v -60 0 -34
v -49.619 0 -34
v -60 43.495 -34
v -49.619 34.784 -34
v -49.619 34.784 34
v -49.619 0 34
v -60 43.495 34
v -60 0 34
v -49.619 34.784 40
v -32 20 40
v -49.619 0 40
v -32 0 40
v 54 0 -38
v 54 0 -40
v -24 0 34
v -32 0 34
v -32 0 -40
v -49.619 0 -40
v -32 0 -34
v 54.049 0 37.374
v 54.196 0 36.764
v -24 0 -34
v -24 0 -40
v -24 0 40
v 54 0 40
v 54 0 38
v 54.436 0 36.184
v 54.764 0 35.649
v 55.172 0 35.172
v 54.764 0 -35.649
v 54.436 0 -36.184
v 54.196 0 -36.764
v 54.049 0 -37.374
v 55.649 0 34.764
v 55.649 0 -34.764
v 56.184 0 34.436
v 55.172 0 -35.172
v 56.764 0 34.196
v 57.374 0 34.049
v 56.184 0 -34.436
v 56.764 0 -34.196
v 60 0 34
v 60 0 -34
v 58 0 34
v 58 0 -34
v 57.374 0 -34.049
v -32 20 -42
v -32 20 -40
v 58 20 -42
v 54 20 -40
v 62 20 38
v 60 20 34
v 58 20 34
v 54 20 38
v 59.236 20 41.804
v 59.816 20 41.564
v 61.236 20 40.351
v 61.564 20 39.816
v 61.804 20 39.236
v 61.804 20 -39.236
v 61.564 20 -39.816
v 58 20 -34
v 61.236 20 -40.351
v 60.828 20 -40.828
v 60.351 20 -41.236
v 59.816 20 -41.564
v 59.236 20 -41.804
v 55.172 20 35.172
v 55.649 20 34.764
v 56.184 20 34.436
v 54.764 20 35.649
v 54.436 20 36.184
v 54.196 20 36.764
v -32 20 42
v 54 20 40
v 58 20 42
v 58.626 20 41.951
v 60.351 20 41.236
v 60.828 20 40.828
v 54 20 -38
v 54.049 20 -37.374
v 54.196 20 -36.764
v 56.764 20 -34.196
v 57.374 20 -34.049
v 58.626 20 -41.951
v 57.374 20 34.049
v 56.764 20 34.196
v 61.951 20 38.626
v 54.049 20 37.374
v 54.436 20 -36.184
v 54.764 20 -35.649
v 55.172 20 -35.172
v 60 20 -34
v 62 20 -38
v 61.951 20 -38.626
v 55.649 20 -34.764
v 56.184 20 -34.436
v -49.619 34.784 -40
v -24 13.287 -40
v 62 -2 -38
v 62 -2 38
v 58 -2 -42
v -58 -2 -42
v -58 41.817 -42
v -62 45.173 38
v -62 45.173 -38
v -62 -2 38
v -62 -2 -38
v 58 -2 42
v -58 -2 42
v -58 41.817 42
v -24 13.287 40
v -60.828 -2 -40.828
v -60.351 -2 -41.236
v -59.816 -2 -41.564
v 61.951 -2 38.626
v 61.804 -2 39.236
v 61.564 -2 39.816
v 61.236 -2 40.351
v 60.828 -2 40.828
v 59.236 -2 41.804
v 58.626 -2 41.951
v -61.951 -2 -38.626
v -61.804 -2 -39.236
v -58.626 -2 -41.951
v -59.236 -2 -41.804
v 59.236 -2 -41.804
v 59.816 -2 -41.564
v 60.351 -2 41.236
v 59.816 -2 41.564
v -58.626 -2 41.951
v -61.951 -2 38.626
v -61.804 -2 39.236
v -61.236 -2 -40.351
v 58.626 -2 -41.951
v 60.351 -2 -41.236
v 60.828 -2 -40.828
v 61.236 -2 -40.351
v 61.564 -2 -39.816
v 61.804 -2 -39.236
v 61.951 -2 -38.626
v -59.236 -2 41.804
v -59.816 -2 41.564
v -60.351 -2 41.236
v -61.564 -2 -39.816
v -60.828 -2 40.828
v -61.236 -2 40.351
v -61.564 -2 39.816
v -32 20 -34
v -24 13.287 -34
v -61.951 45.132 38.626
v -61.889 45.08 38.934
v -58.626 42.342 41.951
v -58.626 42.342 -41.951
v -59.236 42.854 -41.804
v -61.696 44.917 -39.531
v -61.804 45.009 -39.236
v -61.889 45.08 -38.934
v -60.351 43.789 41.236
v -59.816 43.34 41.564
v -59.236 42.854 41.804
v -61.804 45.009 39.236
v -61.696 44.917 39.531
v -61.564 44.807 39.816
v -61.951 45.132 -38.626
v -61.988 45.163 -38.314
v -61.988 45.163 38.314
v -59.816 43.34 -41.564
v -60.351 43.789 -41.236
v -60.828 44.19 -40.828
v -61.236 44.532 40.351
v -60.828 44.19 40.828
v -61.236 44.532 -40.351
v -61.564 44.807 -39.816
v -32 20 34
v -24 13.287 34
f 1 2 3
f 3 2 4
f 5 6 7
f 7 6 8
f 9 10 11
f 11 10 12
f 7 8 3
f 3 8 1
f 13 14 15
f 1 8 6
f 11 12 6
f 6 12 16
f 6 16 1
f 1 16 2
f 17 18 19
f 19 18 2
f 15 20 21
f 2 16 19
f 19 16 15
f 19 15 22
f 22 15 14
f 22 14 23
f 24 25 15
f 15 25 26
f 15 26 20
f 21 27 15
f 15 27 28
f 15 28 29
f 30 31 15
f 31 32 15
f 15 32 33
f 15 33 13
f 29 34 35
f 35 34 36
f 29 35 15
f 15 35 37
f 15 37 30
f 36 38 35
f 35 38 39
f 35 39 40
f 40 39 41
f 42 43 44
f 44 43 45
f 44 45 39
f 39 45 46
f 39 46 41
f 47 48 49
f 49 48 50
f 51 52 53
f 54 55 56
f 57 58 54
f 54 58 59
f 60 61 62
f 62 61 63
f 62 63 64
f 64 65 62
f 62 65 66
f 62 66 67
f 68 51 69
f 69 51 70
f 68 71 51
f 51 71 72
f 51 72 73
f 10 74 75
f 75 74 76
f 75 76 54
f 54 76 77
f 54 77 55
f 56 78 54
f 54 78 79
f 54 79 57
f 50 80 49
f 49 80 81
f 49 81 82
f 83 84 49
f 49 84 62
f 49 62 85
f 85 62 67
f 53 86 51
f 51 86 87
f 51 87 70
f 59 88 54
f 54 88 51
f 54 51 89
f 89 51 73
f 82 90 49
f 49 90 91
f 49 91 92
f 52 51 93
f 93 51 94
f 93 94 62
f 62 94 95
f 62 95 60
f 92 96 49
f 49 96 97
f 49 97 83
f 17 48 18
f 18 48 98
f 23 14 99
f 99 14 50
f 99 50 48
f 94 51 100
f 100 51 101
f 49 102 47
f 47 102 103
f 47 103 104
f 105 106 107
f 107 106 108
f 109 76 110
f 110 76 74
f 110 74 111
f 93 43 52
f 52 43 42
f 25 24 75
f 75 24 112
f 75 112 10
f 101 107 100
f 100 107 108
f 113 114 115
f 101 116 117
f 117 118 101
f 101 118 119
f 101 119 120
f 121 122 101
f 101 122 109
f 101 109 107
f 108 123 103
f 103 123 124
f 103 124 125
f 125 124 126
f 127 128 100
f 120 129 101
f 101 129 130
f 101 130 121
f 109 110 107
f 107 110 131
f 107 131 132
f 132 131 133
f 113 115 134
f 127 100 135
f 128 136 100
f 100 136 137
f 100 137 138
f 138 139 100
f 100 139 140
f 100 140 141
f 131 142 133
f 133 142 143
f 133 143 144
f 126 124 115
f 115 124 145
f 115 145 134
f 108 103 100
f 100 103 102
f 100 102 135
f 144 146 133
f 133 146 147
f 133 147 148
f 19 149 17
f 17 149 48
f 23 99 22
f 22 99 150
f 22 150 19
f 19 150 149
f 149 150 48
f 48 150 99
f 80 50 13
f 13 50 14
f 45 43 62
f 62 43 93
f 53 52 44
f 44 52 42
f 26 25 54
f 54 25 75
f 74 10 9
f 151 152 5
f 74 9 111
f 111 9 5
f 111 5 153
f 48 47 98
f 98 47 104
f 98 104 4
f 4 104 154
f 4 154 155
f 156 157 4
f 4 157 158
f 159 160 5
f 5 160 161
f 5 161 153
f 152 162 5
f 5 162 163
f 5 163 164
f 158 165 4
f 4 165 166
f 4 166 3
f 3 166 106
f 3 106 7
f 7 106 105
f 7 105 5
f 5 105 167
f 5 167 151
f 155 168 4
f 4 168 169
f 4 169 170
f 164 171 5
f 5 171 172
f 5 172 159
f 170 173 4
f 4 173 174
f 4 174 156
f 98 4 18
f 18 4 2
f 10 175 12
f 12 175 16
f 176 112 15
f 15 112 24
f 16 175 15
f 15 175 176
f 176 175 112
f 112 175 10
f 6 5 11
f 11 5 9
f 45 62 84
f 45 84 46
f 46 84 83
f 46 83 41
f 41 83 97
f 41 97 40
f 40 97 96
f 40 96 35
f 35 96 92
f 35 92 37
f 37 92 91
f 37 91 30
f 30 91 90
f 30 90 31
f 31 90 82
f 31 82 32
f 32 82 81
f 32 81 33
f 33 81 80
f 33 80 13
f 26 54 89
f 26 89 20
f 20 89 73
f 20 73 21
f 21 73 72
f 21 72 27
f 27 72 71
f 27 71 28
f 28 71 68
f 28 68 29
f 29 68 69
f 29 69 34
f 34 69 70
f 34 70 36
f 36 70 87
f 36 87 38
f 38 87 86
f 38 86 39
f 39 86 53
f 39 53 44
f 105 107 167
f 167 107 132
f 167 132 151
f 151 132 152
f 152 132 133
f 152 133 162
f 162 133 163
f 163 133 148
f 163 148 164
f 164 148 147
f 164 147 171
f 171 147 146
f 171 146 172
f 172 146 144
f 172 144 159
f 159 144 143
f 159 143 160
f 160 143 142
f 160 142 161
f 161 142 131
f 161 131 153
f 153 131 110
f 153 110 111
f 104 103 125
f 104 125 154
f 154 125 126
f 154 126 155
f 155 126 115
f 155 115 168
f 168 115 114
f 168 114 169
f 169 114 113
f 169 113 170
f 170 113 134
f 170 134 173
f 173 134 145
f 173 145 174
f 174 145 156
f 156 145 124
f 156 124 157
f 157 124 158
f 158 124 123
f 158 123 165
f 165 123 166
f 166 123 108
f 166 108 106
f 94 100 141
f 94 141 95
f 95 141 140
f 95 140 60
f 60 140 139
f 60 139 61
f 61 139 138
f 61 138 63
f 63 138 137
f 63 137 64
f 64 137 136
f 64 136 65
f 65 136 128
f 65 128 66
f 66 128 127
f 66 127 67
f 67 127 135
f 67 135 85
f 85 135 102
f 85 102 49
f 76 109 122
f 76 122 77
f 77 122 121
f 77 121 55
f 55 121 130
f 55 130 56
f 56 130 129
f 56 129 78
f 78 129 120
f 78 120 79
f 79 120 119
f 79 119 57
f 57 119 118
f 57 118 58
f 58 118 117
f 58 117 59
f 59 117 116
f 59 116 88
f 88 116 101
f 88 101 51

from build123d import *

# Parameters (mm, degrees)
SKETCH1_W            = 124
SKETCH1_H            = 84
SKETCH1_W_2          = 120
SKETCH1_H_2          = 80
EXTRUDE_THIN1_DEPTH  = 20
SKETCH2_W            = 124
SKETCH2_H            = 84
BOSS_EXTRUDE1_DEPTH  = 2
BOSS_EXTRUDE2_DEPTH  = 6
SKETCH9_W            = 6
SKETCH9_H            = 6
BOSS_EXTRUDE7_DEPTH  = 20
BOSS_EXTRUDE8_DEPTH  = 2
BOSS_EXTRUDE9_START  = -2
BOSS_EXTRUDE9_DEPTH  = 6
BOSS_EXTRUDE10_DEPTH = 68
FILLET1_R            = 4


with BuildPart() as part:
    # Sketch1 → Extrude-Thin1 (new body)
    with BuildSketch(Plane(origin=(0, 0, 0), x_dir=(1, 0, 0), z_dir=(0, 1, 0))):
        Rectangle(SKETCH1_W, SKETCH1_H)
        Rectangle(SKETCH1_W_2, SKETCH1_H_2, mode=Mode.SUBTRACT)
    extrude(amount=EXTRUDE_THIN1_DEPTH)

    # Sketch2 → Boss-Extrude1 (add)
    with BuildSketch(Plane.XZ):
        Rectangle(SKETCH2_W, SKETCH2_H)
    extrude(amount=BOSS_EXTRUDE1_DEPTH)

    # Sketch3 → Boss-Extrude2 (add)
    with BuildSketch(Plane.XY.offset(-40)):
        Polygon((-24, 13.287202951), (-24, -2), (-32, -2), (-32, 20), align=None)
    boss_extrude2 = extrude(amount=BOSS_EXTRUDE2_DEPTH)

    # Sketch9 → Boss-Extrude7 (add)
    with BuildSketch(Plane(origin=(0, 20, 0), x_dir=(1, 0, 0), z_dir=(0, 1, 0))):
        with Locations((57, 37)):
            Rectangle(SKETCH9_W, SKETCH9_H)
        with Locations((57, -37)):
            Rectangle(SKETCH9_W, SKETCH9_H)
    extrude(amount=-BOSS_EXTRUDE7_DEPTH)

    # Sketch10 → Boss-Extrude8 (add)
    with BuildSketch(Plane(origin=(0, 0, -42), x_dir=(-1, 0, 0), z_dir=(0, 0, -1))):
        Polygon((62, 20), (62, 45.172988935), (32, 20), align=None)
    boss_extrude8 = extrude(amount=-BOSS_EXTRUDE8_DEPTH)

    # Sketch11 → Boss-Extrude9 (add)
    with BuildSketch(Plane(origin=(0, 0, -42), x_dir=(-1, 0, 0), z_dir=(0, 0, -1)).offset(BOSS_EXTRUDE9_START)):
        Polygon((62, 45.172988935), (49.619022192, 34.784115023), (49.619022192, -2), (62, -2), align=None)
    boss_extrude9 = extrude(amount=-BOSS_EXTRUDE9_DEPTH)

    # Mirror1: Boss-Extrude2, Boss-Extrude8, Boss-Extrude9 across plane
    add(boss_extrude2.mirror(Plane(origin=(0, 0, 0), x_dir=(1, 0, 0), z_dir=(0, 0, -1))))
    add(boss_extrude8.mirror(Plane(origin=(0, 0, 0), x_dir=(1, 0, 0), z_dir=(0, 0, -1))))
    add(boss_extrude9.mirror(Plane(origin=(0, 0, 0), x_dir=(1, 0, 0), z_dir=(0, 0, -1))))

    # Sketch12 → Boss-Extrude10 (add)
    with BuildSketch(Plane.XY.offset(-34)):
        Polygon((-62, 20), (-62, 45.172988935), (-60, 43.494789673), (-60, 20), align=None)
    extrude(amount=BOSS_EXTRUDE10_DEPTH)

    # Fillet1
    fillet1_edges = [part.edges().sort_by_distance(p)[0] for p in [
        (62, 9, 42),
        (-62, 21.586494468, 42),
        (-62, 21.586494468, -42),
        (62, 9, -42),
        (54, 10, -34),
        (54, 10, 34),
    ]]
    fillet(fillet1_edges, radius=FILLET1_R)


solid = part.part
